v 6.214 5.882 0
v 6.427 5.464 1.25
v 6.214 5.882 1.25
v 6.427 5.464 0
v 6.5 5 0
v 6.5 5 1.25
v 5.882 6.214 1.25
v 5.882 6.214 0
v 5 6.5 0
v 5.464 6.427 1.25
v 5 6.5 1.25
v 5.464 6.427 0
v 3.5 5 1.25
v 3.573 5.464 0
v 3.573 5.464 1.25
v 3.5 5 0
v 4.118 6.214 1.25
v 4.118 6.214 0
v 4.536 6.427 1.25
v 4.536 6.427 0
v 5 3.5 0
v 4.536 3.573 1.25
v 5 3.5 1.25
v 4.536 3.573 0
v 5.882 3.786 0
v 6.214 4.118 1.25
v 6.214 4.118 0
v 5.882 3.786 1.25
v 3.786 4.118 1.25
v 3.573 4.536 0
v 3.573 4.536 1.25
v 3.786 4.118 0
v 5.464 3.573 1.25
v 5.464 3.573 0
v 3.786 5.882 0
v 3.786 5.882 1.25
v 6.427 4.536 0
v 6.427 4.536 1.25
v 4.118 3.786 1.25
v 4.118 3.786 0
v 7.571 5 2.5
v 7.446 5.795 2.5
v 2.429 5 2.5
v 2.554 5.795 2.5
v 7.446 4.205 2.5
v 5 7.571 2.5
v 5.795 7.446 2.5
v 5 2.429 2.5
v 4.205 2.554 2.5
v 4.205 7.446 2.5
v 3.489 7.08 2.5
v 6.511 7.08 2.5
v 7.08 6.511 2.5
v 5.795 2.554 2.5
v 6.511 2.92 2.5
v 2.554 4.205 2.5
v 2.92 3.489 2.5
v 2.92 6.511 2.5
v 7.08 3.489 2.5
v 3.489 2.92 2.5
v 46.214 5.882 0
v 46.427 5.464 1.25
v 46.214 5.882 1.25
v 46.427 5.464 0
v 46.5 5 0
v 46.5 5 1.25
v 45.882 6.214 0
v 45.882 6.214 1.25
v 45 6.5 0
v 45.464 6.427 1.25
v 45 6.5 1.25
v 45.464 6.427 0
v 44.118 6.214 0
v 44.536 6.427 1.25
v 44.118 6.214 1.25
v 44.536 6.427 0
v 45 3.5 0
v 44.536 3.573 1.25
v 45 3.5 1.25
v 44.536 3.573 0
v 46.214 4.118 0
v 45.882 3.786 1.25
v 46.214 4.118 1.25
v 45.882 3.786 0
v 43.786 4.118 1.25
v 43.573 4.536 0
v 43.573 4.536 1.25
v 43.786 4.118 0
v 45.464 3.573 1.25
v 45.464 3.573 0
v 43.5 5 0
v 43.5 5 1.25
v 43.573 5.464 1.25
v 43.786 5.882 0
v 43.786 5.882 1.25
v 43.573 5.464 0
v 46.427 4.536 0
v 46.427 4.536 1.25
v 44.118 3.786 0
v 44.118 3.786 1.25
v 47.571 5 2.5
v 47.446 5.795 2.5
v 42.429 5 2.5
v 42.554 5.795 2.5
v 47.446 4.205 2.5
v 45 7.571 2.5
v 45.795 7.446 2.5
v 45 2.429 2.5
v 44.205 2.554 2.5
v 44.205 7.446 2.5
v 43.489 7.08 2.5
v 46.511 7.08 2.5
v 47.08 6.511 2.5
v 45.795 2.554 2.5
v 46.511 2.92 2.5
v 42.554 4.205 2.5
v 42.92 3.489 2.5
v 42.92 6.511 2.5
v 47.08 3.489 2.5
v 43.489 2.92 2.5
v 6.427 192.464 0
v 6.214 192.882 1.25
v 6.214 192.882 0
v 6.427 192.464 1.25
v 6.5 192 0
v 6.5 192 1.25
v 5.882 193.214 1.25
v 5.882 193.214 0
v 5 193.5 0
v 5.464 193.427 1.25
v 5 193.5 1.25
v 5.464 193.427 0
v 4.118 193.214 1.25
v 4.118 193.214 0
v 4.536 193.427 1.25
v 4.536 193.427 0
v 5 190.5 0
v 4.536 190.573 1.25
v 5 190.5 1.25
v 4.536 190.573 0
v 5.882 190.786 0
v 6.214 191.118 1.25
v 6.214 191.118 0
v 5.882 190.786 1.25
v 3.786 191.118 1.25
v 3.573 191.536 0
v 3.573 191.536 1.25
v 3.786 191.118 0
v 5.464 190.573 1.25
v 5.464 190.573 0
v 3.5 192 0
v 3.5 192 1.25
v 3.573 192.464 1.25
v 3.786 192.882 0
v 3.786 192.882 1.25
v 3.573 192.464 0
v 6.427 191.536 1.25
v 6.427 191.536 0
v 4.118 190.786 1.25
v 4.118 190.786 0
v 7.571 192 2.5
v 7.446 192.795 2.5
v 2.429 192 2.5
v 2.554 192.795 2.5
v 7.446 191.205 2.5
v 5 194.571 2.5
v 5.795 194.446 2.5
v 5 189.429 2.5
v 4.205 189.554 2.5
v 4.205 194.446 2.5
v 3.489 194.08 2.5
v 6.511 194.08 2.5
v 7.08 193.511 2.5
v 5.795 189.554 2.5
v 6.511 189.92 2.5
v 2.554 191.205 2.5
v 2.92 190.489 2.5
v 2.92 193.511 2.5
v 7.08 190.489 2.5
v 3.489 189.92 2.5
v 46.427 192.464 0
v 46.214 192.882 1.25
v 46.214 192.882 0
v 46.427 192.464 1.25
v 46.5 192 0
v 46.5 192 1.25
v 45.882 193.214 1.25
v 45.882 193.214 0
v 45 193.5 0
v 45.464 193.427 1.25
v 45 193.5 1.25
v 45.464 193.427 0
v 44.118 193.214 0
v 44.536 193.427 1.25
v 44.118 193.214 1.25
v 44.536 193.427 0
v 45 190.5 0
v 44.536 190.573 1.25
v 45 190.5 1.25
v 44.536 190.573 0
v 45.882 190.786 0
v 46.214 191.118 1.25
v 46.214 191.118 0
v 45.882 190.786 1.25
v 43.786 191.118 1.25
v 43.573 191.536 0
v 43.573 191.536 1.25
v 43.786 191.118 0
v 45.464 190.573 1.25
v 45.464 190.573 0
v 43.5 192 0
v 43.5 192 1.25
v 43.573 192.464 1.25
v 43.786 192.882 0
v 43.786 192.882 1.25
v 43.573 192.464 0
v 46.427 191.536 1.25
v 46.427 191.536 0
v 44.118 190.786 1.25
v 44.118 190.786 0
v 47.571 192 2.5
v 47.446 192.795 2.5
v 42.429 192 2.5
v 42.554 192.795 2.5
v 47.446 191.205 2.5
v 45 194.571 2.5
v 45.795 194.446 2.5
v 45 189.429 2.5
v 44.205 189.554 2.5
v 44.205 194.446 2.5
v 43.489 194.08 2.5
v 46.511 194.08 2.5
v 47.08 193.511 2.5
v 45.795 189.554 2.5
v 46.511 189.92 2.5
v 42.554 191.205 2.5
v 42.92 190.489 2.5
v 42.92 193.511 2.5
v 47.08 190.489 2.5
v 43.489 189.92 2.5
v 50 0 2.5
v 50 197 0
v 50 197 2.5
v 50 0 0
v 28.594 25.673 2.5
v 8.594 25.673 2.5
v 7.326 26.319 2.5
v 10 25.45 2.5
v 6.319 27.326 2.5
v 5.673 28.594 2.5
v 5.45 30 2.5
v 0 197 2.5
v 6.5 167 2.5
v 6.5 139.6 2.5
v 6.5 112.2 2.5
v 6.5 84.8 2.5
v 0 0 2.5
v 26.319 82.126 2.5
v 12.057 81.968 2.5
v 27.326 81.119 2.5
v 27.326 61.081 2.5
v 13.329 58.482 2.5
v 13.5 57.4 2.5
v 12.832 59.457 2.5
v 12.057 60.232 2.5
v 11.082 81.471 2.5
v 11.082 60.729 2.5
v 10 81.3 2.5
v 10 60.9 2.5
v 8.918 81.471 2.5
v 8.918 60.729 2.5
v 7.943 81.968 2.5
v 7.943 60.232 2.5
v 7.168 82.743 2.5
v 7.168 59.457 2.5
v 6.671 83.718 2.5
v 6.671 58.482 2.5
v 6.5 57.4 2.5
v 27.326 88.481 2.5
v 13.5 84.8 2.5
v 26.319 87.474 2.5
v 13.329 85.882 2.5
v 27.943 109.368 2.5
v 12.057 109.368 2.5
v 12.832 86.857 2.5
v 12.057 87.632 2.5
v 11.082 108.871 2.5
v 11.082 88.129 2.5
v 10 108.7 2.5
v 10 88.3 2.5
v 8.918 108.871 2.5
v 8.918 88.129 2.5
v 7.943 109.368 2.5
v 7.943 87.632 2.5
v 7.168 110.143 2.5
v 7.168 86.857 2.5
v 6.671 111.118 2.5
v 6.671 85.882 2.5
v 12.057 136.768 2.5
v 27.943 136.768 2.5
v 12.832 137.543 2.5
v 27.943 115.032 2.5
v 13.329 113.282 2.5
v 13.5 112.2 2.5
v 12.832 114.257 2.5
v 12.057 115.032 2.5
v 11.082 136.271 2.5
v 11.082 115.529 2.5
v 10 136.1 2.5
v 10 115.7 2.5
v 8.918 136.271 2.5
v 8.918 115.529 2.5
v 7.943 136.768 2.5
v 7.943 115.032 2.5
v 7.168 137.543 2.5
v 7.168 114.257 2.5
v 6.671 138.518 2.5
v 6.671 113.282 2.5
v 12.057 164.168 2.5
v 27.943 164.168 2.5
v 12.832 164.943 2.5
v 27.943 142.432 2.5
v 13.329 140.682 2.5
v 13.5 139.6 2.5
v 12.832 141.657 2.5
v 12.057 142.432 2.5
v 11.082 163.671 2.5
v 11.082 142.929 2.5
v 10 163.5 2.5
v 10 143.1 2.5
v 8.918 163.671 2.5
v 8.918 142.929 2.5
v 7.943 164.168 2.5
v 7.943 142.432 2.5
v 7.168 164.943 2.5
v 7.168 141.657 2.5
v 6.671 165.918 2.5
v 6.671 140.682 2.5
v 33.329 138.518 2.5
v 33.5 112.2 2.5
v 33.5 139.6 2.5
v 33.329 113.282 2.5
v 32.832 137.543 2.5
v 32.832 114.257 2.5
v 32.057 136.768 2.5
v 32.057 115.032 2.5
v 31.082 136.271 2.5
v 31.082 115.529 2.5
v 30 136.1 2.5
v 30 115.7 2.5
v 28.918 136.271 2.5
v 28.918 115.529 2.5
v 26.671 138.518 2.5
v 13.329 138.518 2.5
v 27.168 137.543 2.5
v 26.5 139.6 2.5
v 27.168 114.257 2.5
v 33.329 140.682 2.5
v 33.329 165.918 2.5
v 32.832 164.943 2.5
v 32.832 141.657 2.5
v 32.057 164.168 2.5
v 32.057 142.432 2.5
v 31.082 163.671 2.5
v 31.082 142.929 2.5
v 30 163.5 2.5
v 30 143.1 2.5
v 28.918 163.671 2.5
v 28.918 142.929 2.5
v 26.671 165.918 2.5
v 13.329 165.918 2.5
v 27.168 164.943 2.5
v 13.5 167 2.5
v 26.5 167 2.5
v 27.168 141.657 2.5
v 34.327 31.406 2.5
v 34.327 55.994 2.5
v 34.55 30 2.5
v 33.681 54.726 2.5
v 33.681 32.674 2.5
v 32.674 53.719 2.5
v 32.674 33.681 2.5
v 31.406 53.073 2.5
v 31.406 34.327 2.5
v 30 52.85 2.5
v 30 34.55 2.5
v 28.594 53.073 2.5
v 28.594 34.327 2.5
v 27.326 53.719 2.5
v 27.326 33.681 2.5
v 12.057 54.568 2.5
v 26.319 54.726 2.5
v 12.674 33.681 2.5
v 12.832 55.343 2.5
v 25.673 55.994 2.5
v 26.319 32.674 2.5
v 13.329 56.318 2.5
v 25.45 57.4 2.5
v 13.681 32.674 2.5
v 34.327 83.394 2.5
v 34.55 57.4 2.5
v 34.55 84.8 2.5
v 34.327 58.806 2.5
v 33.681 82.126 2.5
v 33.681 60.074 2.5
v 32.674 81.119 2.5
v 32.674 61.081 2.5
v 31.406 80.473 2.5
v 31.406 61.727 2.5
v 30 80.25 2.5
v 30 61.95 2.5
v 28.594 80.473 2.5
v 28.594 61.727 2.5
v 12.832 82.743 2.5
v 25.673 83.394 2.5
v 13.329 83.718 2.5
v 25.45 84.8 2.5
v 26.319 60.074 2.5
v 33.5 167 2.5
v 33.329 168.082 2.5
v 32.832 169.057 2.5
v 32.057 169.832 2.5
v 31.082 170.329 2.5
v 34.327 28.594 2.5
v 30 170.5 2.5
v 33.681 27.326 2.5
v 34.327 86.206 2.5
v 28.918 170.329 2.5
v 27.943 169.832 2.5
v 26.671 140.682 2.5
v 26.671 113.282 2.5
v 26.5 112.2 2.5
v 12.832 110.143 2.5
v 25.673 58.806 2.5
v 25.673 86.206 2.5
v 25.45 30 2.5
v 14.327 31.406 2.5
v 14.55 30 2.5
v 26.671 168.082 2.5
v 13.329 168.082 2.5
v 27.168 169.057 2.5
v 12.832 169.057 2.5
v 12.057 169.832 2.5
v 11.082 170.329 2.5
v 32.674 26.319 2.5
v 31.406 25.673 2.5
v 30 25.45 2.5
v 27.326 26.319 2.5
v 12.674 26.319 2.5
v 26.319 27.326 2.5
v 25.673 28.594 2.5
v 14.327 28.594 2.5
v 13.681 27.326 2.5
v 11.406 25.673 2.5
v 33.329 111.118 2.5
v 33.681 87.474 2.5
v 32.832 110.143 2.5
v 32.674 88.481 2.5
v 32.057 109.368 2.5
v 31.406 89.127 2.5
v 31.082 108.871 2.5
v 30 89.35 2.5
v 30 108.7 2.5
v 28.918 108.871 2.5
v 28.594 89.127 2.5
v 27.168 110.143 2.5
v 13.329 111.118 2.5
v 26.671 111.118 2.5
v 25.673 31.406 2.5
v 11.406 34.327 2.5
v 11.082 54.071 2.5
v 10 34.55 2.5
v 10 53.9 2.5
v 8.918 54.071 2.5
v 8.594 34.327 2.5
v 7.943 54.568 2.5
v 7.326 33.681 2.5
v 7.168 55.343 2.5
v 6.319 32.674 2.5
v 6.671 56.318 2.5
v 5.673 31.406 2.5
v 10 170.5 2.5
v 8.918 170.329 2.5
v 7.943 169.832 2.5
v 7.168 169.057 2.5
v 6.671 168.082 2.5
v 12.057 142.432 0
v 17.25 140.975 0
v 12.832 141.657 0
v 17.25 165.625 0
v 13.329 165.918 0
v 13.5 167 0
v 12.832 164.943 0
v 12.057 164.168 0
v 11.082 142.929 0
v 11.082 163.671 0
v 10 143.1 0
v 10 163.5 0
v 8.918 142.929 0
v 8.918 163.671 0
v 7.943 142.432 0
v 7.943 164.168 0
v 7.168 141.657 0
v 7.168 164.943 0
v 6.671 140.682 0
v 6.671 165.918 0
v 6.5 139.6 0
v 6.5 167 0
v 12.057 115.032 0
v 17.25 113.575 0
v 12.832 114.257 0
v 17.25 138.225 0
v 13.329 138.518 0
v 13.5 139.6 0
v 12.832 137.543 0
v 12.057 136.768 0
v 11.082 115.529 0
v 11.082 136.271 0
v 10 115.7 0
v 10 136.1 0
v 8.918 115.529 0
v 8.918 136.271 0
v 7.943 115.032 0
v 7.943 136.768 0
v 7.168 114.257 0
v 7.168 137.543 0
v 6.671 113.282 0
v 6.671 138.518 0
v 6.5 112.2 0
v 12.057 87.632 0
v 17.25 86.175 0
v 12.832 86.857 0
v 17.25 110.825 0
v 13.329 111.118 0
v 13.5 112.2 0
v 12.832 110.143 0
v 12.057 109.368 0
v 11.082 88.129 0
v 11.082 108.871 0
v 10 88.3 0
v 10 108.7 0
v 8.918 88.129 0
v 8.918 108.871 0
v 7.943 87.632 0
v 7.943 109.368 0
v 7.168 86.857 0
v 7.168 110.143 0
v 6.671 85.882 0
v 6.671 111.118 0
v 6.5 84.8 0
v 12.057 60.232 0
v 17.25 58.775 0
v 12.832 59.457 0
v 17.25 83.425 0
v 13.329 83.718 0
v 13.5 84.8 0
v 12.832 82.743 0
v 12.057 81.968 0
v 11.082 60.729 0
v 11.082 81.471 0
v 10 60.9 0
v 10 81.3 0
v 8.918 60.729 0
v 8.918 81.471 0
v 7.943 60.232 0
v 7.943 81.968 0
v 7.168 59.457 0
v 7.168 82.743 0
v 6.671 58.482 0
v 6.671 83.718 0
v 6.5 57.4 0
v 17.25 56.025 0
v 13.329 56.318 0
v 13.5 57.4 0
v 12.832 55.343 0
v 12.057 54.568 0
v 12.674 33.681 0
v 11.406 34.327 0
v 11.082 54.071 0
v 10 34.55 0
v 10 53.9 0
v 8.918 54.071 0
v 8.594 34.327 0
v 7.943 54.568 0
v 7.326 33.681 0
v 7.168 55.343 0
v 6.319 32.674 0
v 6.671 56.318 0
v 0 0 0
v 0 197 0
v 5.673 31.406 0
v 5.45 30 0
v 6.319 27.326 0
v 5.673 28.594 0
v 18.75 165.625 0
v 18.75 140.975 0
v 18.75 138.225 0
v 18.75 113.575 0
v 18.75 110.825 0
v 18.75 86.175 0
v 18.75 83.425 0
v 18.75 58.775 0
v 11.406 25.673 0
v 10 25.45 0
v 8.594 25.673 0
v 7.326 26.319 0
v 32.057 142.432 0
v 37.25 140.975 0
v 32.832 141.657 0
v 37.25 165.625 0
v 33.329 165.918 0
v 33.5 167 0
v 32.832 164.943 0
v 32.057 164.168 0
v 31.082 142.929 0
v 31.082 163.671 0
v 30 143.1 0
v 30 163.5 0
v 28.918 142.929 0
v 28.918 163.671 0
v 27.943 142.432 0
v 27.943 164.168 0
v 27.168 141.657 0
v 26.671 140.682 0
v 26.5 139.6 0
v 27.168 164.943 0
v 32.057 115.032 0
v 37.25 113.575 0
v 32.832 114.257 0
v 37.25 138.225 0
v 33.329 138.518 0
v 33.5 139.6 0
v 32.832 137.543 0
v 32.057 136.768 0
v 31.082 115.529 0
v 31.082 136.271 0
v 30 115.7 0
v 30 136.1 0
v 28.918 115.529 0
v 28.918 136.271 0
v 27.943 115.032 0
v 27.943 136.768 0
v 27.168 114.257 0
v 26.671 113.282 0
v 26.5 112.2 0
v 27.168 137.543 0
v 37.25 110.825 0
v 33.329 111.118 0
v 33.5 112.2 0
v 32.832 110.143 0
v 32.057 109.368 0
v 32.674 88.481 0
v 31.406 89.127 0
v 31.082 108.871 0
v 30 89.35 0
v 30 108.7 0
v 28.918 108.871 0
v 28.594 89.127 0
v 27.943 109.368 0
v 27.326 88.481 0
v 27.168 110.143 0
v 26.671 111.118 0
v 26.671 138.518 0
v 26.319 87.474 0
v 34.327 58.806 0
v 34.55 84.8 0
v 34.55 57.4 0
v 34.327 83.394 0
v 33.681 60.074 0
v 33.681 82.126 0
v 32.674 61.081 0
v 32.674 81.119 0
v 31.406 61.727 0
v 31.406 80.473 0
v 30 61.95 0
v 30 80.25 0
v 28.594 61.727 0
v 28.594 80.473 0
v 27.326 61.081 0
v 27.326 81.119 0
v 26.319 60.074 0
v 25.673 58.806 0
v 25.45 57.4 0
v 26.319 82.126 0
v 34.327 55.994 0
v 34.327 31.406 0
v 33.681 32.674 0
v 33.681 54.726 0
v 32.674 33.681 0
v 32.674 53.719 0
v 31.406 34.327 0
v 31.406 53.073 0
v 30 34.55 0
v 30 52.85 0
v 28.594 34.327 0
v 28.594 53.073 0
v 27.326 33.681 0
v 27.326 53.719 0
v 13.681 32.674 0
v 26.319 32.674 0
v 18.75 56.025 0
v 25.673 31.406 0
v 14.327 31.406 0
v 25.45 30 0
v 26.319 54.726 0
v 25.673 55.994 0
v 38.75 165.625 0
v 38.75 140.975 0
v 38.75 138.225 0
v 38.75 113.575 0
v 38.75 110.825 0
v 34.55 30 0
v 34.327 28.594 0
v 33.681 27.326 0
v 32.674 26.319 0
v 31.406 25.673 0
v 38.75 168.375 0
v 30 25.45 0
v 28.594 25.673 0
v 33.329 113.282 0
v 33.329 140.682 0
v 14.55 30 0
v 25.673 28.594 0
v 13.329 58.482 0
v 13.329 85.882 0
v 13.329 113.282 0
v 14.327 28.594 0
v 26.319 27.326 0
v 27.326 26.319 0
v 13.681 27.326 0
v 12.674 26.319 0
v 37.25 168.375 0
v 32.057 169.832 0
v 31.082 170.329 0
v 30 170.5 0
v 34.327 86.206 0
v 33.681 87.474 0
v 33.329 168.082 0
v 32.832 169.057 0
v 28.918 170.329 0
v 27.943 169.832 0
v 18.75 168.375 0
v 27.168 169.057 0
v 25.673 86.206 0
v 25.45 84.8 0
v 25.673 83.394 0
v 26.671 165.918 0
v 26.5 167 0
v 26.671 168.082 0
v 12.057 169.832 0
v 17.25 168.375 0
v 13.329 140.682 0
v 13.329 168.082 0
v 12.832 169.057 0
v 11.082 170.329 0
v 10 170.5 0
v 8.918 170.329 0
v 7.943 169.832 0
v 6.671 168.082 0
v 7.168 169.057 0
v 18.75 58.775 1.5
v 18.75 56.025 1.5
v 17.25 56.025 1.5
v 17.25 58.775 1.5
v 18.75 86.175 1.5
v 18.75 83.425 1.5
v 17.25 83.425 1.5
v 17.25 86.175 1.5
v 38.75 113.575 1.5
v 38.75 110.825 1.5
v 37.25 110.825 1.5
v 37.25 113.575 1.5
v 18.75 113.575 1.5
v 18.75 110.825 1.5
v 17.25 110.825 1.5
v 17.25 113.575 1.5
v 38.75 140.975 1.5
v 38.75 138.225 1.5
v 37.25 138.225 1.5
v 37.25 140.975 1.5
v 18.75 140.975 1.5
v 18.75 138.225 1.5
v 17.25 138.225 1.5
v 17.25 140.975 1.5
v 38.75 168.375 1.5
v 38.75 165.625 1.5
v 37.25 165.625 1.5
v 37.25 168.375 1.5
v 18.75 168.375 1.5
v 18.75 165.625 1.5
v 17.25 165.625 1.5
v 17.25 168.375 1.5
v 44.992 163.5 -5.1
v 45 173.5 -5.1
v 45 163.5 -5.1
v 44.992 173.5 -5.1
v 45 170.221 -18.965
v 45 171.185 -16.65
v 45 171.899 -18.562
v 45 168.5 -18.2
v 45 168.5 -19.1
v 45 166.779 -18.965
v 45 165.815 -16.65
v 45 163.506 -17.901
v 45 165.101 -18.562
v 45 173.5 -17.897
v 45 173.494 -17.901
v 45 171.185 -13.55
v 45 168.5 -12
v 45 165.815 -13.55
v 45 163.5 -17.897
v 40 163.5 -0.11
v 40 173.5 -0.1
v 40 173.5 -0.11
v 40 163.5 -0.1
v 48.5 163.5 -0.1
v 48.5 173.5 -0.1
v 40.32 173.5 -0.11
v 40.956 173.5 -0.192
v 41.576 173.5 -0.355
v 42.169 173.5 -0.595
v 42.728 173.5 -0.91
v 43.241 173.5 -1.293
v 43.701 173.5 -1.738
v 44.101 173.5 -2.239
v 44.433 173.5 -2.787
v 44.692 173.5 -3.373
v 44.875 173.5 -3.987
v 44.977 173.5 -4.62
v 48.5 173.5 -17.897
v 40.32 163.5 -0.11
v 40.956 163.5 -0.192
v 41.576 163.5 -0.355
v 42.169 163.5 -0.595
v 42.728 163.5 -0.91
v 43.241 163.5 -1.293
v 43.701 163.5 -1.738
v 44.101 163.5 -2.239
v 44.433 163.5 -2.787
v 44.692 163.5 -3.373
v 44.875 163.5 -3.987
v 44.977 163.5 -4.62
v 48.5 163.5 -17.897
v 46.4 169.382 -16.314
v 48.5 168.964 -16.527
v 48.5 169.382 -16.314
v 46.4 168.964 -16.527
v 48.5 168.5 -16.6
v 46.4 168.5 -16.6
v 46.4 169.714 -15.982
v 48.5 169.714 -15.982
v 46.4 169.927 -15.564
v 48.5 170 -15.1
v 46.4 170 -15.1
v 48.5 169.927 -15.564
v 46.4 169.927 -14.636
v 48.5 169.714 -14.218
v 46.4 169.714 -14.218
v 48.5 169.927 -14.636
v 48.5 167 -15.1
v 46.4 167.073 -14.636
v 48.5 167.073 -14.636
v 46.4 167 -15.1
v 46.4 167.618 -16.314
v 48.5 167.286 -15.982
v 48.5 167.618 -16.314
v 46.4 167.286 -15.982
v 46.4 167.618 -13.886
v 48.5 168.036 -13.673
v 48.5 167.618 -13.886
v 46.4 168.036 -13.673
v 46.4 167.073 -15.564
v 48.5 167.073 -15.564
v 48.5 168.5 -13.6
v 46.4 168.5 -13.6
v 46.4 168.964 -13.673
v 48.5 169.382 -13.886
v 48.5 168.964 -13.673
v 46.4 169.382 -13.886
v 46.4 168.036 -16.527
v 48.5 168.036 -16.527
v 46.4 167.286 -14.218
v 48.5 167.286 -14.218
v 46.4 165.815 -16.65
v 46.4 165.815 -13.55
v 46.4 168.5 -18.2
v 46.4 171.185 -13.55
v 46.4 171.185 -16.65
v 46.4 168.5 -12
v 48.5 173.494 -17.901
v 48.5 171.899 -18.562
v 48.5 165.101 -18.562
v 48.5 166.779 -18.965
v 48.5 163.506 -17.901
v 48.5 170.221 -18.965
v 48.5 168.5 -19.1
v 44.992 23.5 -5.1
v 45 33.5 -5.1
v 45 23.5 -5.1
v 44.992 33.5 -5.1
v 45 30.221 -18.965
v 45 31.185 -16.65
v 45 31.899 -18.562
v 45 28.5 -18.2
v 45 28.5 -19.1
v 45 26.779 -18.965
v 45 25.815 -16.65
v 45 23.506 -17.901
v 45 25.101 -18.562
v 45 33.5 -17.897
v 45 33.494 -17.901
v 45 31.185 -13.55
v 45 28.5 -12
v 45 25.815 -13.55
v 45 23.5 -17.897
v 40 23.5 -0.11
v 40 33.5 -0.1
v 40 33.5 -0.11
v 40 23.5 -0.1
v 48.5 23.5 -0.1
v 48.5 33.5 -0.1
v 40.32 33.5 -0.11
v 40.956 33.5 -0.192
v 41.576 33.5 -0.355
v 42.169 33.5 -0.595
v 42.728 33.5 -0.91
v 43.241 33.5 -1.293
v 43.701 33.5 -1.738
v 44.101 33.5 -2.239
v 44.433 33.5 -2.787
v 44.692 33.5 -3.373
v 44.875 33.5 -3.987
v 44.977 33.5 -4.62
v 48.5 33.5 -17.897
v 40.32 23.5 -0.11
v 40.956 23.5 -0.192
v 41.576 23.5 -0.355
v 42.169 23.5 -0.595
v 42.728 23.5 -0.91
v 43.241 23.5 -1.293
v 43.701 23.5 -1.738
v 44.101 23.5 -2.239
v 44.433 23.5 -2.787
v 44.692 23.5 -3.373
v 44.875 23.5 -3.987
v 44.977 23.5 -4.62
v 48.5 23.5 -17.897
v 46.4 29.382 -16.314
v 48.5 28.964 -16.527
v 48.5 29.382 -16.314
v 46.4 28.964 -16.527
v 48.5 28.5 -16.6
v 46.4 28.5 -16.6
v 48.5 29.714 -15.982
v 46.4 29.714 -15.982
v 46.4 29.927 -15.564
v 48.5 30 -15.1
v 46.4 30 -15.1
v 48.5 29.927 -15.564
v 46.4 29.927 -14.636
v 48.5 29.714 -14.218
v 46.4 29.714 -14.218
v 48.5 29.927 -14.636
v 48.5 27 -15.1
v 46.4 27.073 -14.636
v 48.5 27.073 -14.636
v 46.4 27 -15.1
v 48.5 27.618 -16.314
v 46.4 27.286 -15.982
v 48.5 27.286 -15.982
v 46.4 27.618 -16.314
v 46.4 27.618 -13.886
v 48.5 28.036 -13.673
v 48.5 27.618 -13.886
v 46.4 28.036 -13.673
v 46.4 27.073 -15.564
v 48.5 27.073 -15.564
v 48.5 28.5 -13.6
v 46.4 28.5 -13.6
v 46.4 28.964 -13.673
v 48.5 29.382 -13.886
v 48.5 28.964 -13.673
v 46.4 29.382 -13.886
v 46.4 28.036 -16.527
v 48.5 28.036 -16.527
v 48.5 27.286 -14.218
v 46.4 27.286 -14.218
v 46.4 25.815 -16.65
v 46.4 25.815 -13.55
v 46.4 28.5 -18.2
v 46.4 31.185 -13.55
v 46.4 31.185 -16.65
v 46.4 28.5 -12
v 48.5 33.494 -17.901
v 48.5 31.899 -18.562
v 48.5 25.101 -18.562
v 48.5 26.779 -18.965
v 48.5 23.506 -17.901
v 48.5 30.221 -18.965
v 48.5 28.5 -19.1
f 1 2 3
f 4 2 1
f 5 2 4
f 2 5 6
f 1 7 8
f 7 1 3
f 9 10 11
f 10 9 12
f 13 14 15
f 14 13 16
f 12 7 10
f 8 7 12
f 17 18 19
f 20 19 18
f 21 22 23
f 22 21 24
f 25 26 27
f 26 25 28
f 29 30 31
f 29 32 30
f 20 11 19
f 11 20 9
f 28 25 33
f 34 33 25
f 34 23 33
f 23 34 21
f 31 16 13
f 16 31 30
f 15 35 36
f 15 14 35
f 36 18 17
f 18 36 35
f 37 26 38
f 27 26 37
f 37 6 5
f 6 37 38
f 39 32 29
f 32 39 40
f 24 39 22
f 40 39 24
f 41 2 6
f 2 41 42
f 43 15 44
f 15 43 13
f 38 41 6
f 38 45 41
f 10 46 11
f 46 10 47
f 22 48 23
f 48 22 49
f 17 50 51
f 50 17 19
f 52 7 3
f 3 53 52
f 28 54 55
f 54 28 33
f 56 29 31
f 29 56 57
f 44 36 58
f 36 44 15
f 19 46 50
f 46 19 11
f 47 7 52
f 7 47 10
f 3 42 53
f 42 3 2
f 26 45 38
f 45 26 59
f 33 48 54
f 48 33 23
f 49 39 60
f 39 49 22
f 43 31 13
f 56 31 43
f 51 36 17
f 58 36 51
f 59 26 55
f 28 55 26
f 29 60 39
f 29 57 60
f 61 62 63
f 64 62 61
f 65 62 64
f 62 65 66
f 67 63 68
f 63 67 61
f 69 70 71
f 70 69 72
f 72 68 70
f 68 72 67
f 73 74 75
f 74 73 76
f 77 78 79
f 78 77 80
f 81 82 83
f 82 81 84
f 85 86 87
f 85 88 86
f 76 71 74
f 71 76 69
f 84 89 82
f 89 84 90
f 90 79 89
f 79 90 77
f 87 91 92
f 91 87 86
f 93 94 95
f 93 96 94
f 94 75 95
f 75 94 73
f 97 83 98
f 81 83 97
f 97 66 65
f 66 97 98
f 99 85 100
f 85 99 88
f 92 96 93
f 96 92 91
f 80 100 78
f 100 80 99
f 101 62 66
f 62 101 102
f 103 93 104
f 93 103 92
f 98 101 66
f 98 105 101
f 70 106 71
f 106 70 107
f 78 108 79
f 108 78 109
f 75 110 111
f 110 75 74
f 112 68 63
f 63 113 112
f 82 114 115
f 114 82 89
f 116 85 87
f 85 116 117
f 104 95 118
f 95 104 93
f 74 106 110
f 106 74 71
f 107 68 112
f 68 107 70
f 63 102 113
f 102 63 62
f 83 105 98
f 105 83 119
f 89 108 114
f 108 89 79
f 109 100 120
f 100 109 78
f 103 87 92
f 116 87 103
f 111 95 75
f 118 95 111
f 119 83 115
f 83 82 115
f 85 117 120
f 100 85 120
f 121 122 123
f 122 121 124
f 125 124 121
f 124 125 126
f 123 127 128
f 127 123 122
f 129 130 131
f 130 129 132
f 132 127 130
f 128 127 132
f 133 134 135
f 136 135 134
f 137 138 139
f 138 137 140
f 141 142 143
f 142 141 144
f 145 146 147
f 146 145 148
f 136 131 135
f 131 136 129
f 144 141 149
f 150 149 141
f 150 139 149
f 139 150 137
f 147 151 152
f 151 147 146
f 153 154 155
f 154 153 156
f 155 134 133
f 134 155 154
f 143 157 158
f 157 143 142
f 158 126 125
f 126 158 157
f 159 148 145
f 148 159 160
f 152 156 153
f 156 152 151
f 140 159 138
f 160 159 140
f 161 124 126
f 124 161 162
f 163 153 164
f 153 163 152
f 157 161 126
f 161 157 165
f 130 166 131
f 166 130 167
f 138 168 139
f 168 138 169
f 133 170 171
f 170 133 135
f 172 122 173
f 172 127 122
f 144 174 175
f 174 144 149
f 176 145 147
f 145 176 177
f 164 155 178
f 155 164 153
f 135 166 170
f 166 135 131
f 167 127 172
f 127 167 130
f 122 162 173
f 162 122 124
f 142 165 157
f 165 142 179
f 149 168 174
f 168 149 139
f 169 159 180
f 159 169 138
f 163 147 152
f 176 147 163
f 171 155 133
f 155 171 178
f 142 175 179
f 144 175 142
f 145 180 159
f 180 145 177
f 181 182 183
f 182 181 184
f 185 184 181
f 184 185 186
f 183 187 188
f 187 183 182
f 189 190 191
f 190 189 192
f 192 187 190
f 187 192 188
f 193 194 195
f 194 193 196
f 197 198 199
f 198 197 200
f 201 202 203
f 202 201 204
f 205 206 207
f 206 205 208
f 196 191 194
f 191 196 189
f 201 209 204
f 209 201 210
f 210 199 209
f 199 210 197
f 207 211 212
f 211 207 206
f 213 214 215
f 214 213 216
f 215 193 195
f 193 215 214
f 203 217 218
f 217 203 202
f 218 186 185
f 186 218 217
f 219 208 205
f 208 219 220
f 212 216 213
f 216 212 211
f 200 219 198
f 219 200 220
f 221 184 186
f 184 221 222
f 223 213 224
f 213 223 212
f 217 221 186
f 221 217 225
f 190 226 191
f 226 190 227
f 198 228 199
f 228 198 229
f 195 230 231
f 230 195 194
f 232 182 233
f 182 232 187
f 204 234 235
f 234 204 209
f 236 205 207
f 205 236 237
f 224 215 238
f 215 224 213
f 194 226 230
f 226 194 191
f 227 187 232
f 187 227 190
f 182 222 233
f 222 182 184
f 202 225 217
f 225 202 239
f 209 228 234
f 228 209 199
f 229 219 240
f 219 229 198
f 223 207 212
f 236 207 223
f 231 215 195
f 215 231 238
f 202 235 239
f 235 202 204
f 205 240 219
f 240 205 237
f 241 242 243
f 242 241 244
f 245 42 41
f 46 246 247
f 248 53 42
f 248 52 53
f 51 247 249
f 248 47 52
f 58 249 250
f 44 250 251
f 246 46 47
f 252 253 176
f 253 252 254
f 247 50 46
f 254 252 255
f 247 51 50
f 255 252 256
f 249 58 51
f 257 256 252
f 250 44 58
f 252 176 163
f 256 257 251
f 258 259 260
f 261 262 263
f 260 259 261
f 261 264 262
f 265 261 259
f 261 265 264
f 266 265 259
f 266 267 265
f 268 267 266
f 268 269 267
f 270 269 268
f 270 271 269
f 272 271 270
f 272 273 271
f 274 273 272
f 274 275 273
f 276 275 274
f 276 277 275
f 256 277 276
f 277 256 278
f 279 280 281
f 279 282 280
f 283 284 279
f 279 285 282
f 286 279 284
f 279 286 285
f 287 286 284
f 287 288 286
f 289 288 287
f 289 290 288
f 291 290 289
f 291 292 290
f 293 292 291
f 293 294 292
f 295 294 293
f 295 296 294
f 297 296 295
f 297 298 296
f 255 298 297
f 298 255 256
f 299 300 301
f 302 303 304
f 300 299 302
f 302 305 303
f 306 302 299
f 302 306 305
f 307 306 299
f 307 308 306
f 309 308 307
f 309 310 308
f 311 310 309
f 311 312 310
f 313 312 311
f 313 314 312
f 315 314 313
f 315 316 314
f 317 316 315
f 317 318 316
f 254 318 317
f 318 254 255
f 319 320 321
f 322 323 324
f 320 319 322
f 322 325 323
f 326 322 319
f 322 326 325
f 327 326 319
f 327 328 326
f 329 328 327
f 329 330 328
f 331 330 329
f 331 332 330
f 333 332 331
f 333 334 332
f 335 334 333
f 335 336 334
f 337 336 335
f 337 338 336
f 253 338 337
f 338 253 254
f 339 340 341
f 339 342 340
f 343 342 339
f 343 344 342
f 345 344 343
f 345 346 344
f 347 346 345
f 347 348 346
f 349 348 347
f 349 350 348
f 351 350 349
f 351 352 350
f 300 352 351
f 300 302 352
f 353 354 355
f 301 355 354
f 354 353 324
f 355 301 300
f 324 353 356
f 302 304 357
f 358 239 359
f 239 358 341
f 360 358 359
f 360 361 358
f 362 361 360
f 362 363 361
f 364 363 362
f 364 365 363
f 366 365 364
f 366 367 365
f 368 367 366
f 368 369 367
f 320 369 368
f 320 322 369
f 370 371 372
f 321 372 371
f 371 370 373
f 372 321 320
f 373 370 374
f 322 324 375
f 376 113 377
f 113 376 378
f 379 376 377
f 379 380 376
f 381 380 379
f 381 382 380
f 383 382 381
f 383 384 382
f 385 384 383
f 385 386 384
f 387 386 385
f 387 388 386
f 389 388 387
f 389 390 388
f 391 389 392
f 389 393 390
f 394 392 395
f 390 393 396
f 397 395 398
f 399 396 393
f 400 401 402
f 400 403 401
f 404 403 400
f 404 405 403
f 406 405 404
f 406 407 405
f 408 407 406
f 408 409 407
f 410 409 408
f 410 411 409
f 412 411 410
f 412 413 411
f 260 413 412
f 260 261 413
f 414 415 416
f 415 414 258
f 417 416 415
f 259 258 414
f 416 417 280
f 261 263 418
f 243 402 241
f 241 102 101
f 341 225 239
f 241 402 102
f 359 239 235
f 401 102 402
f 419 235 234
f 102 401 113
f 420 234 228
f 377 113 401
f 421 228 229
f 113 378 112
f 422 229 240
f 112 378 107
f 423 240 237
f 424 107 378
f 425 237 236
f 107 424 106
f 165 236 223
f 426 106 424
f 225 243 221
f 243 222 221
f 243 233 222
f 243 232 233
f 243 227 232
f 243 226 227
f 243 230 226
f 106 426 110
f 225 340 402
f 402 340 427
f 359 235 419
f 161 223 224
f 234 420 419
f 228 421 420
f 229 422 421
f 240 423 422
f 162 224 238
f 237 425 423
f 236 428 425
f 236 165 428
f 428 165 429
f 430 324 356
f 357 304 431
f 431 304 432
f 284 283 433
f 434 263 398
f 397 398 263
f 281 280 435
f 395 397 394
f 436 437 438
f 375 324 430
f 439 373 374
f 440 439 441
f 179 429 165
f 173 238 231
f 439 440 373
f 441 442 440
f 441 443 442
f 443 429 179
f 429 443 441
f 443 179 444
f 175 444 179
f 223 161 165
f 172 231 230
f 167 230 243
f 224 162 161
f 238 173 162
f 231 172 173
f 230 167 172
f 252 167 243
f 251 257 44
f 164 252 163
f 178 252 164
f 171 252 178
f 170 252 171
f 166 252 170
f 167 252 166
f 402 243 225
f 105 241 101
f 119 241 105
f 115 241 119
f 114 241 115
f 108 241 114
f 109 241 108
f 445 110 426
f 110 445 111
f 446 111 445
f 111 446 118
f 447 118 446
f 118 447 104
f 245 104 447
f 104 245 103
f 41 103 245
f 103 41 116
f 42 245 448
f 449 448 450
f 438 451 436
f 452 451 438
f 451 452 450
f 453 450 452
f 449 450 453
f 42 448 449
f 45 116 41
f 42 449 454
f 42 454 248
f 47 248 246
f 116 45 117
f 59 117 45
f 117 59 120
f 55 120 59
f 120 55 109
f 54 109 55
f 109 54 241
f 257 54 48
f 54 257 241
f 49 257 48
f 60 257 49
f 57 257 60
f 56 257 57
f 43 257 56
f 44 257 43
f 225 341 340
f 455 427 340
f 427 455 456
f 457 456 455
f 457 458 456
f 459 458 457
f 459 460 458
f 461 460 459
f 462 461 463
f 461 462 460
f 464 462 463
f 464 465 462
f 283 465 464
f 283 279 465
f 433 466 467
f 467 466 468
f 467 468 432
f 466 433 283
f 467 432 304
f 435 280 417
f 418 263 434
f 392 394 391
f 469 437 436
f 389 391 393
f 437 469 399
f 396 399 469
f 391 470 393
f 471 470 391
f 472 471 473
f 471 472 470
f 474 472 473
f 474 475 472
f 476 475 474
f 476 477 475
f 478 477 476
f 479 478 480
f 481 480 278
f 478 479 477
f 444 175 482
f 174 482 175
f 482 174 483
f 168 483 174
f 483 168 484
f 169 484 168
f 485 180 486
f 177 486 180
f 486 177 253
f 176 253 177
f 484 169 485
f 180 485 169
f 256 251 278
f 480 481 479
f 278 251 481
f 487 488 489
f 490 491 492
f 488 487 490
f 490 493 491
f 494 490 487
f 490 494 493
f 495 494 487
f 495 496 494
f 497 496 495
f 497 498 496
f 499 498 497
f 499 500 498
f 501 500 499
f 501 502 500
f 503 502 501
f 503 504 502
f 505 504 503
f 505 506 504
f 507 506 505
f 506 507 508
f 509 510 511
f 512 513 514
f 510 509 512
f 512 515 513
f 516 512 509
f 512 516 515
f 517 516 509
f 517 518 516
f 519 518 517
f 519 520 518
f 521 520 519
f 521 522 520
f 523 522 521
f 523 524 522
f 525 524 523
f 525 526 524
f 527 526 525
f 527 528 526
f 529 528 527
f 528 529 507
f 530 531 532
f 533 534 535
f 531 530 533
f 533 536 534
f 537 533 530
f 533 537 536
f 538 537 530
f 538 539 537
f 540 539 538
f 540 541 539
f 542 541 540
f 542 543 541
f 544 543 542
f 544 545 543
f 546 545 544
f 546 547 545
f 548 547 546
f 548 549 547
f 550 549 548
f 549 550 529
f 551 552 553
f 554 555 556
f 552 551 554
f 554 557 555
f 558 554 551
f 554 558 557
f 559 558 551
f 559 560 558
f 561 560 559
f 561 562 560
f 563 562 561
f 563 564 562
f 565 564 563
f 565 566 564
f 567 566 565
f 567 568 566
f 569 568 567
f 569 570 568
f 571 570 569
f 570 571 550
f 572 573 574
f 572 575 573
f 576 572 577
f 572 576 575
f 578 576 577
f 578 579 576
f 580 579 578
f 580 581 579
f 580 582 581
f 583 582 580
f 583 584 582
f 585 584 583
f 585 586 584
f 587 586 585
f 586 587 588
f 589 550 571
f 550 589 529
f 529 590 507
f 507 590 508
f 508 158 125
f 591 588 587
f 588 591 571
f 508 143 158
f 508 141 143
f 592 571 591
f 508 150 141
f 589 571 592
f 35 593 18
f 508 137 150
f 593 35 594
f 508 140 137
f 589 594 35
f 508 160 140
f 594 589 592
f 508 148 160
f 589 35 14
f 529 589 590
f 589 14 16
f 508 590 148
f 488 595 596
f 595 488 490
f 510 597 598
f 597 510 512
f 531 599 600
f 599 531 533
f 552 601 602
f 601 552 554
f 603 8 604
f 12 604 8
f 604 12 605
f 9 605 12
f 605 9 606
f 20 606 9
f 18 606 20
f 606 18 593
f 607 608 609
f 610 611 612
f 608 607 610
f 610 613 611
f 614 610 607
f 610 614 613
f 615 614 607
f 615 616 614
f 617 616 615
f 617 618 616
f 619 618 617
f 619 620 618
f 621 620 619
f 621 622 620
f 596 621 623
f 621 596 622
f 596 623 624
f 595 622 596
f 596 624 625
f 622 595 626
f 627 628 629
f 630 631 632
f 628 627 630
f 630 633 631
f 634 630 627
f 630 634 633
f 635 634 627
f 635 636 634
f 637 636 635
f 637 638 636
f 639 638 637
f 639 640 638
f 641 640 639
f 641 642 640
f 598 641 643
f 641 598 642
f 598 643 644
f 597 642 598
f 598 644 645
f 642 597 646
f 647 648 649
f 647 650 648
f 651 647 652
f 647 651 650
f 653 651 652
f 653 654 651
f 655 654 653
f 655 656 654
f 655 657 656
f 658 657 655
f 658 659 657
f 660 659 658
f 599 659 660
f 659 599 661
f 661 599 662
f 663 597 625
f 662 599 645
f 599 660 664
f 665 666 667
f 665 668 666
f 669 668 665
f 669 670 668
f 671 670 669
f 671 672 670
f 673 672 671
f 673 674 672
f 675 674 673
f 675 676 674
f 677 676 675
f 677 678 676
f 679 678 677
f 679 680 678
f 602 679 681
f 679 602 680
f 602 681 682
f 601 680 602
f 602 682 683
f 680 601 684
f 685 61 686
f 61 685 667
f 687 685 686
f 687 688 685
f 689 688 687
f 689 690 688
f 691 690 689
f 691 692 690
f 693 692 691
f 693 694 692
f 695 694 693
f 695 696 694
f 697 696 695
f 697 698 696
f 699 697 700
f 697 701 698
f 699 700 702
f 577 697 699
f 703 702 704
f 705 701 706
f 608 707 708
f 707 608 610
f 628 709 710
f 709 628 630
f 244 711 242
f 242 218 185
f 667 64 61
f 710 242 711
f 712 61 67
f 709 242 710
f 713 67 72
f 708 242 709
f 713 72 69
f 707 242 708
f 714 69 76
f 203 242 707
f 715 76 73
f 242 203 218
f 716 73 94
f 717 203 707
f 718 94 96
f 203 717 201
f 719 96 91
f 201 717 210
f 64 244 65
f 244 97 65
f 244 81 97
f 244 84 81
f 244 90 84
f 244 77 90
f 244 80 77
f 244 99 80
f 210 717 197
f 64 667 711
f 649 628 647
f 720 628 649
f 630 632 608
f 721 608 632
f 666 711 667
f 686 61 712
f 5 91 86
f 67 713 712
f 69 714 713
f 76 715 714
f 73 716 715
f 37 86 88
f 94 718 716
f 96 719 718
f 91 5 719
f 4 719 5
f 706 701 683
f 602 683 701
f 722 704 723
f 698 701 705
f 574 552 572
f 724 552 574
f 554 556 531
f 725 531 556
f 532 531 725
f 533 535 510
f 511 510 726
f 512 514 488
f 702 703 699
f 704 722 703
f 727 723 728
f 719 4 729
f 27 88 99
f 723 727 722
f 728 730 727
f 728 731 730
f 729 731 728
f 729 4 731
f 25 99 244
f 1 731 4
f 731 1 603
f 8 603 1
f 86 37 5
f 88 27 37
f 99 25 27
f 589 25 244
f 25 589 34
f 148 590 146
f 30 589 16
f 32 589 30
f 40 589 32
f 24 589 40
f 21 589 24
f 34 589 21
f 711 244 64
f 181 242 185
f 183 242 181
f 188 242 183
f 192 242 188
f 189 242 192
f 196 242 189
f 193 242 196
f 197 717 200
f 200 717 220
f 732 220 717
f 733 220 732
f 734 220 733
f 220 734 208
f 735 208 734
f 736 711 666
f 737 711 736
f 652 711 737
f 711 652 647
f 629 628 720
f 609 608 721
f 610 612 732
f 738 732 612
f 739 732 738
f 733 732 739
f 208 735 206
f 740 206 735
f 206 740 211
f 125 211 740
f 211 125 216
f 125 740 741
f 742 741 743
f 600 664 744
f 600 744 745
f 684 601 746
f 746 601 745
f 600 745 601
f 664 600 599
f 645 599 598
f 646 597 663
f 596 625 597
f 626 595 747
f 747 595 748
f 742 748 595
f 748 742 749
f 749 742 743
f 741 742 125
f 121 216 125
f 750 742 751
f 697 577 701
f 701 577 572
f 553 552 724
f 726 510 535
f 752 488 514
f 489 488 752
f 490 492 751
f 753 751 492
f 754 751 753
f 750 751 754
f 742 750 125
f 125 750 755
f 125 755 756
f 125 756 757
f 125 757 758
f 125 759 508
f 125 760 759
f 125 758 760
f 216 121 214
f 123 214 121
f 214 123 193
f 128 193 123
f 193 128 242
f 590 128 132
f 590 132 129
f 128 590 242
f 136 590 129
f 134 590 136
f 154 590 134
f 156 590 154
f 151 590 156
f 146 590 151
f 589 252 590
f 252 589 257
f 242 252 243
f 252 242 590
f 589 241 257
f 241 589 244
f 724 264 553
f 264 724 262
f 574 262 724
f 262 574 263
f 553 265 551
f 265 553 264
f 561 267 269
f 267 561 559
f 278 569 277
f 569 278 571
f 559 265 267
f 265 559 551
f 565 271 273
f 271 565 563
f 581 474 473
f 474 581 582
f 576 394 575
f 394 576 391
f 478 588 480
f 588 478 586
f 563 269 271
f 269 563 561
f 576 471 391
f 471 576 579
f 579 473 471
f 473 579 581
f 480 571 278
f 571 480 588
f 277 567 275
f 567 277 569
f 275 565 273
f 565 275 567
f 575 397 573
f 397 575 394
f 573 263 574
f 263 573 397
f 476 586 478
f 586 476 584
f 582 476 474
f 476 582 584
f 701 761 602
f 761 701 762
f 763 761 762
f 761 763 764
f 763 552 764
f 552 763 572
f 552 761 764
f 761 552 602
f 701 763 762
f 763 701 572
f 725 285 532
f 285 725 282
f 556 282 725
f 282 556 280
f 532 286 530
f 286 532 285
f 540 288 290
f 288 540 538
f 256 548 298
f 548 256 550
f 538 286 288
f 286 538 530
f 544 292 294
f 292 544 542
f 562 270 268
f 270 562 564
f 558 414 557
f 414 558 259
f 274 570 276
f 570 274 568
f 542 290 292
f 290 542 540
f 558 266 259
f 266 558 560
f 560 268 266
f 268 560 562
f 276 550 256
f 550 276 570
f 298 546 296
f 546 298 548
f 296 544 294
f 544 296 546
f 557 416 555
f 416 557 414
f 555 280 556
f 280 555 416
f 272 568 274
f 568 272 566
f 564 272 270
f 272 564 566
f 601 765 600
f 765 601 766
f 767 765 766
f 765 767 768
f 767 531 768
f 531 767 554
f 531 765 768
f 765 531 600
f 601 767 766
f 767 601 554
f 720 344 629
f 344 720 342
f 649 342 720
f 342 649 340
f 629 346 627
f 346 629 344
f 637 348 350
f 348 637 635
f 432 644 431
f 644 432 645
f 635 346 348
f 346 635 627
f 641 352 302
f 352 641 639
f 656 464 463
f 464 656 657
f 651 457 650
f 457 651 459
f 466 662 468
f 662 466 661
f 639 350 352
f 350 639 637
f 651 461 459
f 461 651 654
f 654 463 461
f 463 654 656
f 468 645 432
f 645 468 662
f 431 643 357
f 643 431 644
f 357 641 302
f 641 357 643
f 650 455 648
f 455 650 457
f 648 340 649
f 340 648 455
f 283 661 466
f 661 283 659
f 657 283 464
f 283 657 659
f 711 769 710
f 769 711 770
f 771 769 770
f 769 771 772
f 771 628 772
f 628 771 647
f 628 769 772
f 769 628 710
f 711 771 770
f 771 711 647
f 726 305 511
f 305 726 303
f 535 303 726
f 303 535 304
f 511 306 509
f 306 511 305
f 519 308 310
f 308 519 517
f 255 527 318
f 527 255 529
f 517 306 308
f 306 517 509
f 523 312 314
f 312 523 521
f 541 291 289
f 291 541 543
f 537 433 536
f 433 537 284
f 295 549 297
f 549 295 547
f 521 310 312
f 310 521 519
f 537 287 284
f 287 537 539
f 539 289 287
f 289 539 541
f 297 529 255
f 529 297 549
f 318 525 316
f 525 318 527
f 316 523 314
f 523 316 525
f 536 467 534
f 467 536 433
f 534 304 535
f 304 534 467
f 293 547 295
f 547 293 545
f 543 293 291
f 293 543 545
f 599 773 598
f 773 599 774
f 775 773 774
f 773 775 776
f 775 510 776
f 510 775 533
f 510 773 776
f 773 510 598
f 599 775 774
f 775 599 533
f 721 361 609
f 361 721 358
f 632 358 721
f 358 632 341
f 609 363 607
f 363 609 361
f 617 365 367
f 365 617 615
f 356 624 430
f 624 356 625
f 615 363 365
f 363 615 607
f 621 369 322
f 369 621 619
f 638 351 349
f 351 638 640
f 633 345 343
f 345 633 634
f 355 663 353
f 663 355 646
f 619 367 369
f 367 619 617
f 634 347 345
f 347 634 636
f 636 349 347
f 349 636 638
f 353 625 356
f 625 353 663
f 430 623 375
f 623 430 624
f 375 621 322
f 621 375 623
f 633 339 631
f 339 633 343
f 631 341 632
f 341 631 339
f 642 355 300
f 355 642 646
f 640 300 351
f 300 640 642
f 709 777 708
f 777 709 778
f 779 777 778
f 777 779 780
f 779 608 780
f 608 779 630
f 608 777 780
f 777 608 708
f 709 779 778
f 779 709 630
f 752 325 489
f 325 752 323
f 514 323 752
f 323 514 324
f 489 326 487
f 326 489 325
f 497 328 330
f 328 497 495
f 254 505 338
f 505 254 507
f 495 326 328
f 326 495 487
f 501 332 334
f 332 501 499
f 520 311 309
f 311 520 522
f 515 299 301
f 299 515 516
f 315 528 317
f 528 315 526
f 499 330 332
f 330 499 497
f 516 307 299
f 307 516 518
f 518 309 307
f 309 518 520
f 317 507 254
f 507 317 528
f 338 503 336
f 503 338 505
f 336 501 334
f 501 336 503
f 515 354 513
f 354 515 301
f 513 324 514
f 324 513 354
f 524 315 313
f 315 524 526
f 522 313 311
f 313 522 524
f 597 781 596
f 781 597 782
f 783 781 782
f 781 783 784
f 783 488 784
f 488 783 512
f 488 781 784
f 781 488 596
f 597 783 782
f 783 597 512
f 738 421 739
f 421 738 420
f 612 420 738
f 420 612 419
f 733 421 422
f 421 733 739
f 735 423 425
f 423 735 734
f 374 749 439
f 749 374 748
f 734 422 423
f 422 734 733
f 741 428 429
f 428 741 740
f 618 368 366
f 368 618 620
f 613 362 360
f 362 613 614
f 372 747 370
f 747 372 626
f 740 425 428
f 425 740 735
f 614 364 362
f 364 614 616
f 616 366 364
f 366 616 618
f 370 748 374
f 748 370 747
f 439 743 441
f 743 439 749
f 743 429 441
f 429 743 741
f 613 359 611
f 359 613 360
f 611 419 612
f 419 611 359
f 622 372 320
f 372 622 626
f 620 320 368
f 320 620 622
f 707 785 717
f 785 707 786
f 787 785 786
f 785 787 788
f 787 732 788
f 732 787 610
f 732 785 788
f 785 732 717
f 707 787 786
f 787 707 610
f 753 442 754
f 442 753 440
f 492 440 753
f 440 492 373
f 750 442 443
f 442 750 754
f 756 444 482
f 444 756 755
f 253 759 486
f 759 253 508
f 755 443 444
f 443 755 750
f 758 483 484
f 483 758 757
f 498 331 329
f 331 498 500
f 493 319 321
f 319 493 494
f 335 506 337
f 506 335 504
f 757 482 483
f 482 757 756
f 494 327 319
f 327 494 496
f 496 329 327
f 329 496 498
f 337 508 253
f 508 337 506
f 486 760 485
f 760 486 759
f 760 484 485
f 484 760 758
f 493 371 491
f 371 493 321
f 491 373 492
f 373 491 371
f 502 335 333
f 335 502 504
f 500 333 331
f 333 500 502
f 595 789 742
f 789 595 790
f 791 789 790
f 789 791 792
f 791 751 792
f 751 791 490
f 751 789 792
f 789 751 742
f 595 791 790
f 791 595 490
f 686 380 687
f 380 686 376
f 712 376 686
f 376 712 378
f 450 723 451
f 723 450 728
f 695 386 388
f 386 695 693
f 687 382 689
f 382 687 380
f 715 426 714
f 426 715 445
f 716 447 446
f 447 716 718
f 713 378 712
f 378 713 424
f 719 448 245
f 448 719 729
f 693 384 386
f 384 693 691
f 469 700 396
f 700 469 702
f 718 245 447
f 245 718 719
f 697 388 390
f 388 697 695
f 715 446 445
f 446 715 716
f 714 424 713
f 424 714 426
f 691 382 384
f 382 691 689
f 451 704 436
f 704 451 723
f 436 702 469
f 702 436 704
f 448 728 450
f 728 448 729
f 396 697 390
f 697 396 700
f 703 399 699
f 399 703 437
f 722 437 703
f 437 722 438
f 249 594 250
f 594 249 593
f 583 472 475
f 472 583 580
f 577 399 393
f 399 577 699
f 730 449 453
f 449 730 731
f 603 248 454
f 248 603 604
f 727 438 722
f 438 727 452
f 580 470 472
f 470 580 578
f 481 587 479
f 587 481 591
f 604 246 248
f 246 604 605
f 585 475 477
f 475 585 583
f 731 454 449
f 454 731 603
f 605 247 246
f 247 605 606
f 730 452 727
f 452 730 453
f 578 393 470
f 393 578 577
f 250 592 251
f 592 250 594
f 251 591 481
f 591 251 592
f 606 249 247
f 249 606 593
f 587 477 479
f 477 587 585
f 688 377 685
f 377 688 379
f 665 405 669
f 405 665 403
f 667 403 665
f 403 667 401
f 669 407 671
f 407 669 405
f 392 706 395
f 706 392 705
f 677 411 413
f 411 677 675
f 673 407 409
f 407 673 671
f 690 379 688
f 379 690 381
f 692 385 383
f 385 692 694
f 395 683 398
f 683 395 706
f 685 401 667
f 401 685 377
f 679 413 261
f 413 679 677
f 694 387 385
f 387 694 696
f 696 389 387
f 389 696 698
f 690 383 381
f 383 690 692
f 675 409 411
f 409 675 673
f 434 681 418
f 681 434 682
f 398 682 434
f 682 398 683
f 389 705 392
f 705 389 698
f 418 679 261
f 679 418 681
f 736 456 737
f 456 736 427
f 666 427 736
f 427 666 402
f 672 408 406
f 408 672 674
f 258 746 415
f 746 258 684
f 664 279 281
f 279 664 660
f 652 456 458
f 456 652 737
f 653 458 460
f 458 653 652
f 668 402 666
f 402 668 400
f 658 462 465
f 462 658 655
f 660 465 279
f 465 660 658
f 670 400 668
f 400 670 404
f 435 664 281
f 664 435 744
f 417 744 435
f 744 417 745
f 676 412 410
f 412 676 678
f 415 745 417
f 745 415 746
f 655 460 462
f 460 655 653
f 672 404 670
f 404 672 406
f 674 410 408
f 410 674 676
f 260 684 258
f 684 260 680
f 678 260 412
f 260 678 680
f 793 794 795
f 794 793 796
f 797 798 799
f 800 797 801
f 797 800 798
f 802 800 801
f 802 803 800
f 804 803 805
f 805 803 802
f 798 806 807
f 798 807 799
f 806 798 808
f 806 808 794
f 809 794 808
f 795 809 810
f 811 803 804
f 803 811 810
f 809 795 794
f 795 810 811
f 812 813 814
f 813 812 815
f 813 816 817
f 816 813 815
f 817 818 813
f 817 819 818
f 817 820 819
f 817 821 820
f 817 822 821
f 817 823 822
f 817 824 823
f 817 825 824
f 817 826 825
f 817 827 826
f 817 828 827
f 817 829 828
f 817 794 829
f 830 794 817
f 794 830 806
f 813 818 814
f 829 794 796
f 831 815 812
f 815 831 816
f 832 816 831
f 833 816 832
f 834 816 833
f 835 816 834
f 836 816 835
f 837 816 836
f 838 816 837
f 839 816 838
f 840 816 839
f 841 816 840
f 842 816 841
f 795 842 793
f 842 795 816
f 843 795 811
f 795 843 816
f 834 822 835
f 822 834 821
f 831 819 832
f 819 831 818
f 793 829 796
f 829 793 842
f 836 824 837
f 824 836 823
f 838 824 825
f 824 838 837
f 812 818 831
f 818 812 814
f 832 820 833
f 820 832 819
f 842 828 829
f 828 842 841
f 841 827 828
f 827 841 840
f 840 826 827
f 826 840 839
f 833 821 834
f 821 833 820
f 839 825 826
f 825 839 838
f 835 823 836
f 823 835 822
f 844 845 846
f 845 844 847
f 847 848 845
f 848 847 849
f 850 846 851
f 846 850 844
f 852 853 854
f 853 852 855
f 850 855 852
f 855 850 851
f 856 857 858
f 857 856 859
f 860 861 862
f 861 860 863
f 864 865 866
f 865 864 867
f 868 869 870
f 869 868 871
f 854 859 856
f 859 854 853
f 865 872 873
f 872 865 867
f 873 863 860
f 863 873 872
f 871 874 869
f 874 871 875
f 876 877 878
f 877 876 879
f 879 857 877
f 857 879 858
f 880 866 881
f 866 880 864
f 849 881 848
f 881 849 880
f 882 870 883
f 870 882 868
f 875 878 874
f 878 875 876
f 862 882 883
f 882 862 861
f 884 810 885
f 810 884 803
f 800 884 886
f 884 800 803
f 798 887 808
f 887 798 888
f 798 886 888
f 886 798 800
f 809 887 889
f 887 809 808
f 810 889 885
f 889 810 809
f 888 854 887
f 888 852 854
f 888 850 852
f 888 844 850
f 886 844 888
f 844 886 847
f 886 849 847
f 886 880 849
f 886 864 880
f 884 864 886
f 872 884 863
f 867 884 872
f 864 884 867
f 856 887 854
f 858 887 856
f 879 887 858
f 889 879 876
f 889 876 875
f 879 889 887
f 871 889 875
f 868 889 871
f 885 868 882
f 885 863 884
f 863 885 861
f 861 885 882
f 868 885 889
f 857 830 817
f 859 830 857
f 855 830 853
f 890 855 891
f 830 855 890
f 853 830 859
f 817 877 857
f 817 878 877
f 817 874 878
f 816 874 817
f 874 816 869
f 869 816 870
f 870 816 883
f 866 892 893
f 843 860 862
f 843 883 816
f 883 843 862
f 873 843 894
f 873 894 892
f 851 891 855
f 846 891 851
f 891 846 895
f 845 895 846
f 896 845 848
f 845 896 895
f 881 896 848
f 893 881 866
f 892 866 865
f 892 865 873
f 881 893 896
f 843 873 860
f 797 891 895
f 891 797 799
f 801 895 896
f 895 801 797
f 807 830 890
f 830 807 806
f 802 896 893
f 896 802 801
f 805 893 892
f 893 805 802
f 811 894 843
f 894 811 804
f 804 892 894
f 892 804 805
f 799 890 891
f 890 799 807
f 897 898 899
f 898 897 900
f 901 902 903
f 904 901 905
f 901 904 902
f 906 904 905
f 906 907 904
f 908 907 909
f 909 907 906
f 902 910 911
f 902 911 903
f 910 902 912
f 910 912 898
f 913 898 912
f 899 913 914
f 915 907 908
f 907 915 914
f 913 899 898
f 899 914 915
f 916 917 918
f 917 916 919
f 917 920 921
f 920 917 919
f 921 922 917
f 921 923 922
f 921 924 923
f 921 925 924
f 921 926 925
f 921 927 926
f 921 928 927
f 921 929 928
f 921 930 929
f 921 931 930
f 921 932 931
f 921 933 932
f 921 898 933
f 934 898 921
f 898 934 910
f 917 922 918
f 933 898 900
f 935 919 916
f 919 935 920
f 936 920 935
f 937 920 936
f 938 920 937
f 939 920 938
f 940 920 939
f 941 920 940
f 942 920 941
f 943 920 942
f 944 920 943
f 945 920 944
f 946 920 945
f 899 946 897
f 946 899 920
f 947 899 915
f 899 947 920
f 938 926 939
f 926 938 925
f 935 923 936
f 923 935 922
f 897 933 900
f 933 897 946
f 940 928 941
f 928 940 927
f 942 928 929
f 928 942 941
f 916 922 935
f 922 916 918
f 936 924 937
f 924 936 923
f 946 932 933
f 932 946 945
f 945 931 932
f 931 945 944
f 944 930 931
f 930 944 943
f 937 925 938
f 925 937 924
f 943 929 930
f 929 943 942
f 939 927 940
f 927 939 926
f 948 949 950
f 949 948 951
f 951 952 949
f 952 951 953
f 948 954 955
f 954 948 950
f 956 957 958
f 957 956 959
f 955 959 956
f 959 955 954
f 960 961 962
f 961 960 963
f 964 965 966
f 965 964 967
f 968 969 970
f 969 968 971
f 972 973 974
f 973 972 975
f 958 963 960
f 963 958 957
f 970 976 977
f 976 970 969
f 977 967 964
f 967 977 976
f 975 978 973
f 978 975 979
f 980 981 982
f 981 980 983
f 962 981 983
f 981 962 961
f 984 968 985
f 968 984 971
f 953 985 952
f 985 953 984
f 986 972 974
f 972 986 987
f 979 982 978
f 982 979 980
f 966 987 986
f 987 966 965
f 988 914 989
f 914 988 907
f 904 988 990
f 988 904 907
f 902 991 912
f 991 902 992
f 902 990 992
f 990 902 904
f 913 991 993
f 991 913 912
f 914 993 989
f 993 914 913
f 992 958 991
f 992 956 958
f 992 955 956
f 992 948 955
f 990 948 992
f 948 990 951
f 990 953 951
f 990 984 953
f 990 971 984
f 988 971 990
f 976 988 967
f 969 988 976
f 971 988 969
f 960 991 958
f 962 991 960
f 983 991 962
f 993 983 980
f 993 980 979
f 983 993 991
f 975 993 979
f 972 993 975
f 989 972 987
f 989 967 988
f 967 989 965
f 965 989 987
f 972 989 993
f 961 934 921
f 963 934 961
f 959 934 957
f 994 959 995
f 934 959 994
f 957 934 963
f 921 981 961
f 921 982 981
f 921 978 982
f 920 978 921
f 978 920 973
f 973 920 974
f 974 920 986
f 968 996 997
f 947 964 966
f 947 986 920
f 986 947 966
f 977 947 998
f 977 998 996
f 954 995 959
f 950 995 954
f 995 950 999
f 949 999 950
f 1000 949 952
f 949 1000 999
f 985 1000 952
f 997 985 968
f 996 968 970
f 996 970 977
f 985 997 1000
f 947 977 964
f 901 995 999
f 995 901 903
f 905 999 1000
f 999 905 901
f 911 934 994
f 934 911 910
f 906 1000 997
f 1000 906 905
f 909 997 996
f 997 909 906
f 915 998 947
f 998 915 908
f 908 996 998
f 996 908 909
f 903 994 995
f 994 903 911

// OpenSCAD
// file: kosmo.scad
panelHeight = 197;
thickness = 2.5;
mountHoleDiameter = 3.0;
jackHoleDiameter = 9.1;
ledHoleDiameter = 5;
pushButtonHoleDiameter = 7;
potHoleDiameter = 7;
switchHoleDiameter = 6;
rotarySwitchHoleDiameter = 9.1;
midiSocketHoleDiameter = 15;
colPaddingLeft = 20;
colPaddingRight = 10;
rowPadding = 30;

offsetTopBottom = 20; // Mounting area

n_rows = 6;
n_cols = width / 25;

rowsStart = rowPadding;
rowsEnd = panelHeight - rowPadding;

colsStart = colPaddingRight;
colsEnd = width - colPaddingLeft;


function row (i) = rowsStart + i * (rowsEnd - rowsStart) / (n_rows - 1);
function col (i) = colsStart + i * (colsEnd - colsStart) / (n_cols - 1);

module pcbHolders(){
  pcbHolder(width-5, panelHeight/2 + 140/2 - 5);
  pcbHolder(width-5, panelHeight/2 - 140/2 - 5);
}


module pcbHolder(x, y){
  pcbHole = 3;
  w = 10;
  h = 20;
  clearance = 15; // distance between panel and PCB hole
    
  translate([x, y, -0.1]) { // prevent gap
    rotate([0, 90, 0]) {
      union() {
        difference() {
          translate([0, 0, -5]) {               
            cube([5,w,5]);
          }
          translate([5, w+1, -5]) {
            rotate([90, 0, 0]) {
              cylinder(r=5, h=w+2,$fn=49);
            }
          }
        }
        /**/
        intersection() {
          difference() {
            cube([h, w, thickness+1]);
            translate([clearance, w/2, -0.9]){
              cylinder(r=pcbHole/2,  h=thickness+2, $fn=20);
              cylinder(r=3.1, h=2.3, $fn=6);
            }
          }
          translate([h/2-2, w/2, -1]) {
            cylinder(r=w+1, h=thickness+2, $fn=40);
          }
        }
        /**/
      }
    }
  }
}



module kosmoMountHoles(width, height) {
  punchHole(5, 5, mountHoleDiameter,true);
  punchHole((width-5), 5, mountHoleDiameter,true);
  punchHole(5, (height-5), mountHoleDiameter,true);
  punchHole((width-5), (height-5), mountHoleDiameter,true);
}


module punchHole(x, y, holeSize,chamfer=false){
  translate([x, y, -1]){
    cylinder(r=holeSize/2, h=thickness+2, $fn=20);
    if(chamfer) {
      translate([0, 0, 0.5]){
        cylinder(r2=holeSize, r1=0, h=holeSize+0.5, $fn=20);
      }
    }
  }
}

module midiSocket(x, y) {
    punchHole(x, y, midiSocketHoleDiameter);
}
module led(x, y) {
    punchHole(x, y, ledHoleDiameter);
}
module switch(x, y) { 
    punchHole(x, y, switchHoleDiameter);
}
module pushButton(x, y) { 
    punchHole(x, y, pushButtonHoleDiameter);
}
module rotarySwitch(x, y) { 
    punchHole(x, y, rotarySwitchHoleDiameter);
}
module sevenSegmentDisplay(x, y) {
    translate([x-6.5, y-9.6, -1]){
        cube([13, 19.2, thickness+2]);
    }
}

module pot(x, y) {
  translate([x, y , 0]) {
    union() {
      punchHole(0, 0, potHoleDiameter);
      translate([7.25, -2.75/2, -0.1]) {
        cube([1.5, 2.75, 1.6]);
      }
    }
  }
  echo(concat("pot at ", x, y));
}

module jack(x, y){
  punchHole(x, y, jackHoleDiameter);
    echo(concat("Jack at", x, y));
}

module panel(width) {
  difference() {
    cube([width, panelHeight, thickness]);
    kosmoMountHoles(width, panelHeight);
  }
}
// main file
width = 50;
include <kosmo.scad>
n_rows = 6;
colsEnd = 30;

 difference() {
     panel(width);
     
     jack(col(1), row(0)); // gate in
     jack(col(0), row(0)); // Output
     
     jack(col(1), row(1)); // Accent CV
     pot(col(0), row(1)); // Accent CV lvl
     
     jack(col(1), row(2)); // Pitch CV
     pot(col(0), row(2)); // Pitch CV lvl
     
     pot(col(1), row(3)); // Pitch
     pot(col(0), row(3)); // Distortion
     
     pot(col(1), row(4)); // Tune decay
     pot(col(0), row(4)); // Tune depth
     
     pot(col(1), row(5)); // Decay
     pot(col(0), row(5)); // Tone     
 }
pcbHolders();
